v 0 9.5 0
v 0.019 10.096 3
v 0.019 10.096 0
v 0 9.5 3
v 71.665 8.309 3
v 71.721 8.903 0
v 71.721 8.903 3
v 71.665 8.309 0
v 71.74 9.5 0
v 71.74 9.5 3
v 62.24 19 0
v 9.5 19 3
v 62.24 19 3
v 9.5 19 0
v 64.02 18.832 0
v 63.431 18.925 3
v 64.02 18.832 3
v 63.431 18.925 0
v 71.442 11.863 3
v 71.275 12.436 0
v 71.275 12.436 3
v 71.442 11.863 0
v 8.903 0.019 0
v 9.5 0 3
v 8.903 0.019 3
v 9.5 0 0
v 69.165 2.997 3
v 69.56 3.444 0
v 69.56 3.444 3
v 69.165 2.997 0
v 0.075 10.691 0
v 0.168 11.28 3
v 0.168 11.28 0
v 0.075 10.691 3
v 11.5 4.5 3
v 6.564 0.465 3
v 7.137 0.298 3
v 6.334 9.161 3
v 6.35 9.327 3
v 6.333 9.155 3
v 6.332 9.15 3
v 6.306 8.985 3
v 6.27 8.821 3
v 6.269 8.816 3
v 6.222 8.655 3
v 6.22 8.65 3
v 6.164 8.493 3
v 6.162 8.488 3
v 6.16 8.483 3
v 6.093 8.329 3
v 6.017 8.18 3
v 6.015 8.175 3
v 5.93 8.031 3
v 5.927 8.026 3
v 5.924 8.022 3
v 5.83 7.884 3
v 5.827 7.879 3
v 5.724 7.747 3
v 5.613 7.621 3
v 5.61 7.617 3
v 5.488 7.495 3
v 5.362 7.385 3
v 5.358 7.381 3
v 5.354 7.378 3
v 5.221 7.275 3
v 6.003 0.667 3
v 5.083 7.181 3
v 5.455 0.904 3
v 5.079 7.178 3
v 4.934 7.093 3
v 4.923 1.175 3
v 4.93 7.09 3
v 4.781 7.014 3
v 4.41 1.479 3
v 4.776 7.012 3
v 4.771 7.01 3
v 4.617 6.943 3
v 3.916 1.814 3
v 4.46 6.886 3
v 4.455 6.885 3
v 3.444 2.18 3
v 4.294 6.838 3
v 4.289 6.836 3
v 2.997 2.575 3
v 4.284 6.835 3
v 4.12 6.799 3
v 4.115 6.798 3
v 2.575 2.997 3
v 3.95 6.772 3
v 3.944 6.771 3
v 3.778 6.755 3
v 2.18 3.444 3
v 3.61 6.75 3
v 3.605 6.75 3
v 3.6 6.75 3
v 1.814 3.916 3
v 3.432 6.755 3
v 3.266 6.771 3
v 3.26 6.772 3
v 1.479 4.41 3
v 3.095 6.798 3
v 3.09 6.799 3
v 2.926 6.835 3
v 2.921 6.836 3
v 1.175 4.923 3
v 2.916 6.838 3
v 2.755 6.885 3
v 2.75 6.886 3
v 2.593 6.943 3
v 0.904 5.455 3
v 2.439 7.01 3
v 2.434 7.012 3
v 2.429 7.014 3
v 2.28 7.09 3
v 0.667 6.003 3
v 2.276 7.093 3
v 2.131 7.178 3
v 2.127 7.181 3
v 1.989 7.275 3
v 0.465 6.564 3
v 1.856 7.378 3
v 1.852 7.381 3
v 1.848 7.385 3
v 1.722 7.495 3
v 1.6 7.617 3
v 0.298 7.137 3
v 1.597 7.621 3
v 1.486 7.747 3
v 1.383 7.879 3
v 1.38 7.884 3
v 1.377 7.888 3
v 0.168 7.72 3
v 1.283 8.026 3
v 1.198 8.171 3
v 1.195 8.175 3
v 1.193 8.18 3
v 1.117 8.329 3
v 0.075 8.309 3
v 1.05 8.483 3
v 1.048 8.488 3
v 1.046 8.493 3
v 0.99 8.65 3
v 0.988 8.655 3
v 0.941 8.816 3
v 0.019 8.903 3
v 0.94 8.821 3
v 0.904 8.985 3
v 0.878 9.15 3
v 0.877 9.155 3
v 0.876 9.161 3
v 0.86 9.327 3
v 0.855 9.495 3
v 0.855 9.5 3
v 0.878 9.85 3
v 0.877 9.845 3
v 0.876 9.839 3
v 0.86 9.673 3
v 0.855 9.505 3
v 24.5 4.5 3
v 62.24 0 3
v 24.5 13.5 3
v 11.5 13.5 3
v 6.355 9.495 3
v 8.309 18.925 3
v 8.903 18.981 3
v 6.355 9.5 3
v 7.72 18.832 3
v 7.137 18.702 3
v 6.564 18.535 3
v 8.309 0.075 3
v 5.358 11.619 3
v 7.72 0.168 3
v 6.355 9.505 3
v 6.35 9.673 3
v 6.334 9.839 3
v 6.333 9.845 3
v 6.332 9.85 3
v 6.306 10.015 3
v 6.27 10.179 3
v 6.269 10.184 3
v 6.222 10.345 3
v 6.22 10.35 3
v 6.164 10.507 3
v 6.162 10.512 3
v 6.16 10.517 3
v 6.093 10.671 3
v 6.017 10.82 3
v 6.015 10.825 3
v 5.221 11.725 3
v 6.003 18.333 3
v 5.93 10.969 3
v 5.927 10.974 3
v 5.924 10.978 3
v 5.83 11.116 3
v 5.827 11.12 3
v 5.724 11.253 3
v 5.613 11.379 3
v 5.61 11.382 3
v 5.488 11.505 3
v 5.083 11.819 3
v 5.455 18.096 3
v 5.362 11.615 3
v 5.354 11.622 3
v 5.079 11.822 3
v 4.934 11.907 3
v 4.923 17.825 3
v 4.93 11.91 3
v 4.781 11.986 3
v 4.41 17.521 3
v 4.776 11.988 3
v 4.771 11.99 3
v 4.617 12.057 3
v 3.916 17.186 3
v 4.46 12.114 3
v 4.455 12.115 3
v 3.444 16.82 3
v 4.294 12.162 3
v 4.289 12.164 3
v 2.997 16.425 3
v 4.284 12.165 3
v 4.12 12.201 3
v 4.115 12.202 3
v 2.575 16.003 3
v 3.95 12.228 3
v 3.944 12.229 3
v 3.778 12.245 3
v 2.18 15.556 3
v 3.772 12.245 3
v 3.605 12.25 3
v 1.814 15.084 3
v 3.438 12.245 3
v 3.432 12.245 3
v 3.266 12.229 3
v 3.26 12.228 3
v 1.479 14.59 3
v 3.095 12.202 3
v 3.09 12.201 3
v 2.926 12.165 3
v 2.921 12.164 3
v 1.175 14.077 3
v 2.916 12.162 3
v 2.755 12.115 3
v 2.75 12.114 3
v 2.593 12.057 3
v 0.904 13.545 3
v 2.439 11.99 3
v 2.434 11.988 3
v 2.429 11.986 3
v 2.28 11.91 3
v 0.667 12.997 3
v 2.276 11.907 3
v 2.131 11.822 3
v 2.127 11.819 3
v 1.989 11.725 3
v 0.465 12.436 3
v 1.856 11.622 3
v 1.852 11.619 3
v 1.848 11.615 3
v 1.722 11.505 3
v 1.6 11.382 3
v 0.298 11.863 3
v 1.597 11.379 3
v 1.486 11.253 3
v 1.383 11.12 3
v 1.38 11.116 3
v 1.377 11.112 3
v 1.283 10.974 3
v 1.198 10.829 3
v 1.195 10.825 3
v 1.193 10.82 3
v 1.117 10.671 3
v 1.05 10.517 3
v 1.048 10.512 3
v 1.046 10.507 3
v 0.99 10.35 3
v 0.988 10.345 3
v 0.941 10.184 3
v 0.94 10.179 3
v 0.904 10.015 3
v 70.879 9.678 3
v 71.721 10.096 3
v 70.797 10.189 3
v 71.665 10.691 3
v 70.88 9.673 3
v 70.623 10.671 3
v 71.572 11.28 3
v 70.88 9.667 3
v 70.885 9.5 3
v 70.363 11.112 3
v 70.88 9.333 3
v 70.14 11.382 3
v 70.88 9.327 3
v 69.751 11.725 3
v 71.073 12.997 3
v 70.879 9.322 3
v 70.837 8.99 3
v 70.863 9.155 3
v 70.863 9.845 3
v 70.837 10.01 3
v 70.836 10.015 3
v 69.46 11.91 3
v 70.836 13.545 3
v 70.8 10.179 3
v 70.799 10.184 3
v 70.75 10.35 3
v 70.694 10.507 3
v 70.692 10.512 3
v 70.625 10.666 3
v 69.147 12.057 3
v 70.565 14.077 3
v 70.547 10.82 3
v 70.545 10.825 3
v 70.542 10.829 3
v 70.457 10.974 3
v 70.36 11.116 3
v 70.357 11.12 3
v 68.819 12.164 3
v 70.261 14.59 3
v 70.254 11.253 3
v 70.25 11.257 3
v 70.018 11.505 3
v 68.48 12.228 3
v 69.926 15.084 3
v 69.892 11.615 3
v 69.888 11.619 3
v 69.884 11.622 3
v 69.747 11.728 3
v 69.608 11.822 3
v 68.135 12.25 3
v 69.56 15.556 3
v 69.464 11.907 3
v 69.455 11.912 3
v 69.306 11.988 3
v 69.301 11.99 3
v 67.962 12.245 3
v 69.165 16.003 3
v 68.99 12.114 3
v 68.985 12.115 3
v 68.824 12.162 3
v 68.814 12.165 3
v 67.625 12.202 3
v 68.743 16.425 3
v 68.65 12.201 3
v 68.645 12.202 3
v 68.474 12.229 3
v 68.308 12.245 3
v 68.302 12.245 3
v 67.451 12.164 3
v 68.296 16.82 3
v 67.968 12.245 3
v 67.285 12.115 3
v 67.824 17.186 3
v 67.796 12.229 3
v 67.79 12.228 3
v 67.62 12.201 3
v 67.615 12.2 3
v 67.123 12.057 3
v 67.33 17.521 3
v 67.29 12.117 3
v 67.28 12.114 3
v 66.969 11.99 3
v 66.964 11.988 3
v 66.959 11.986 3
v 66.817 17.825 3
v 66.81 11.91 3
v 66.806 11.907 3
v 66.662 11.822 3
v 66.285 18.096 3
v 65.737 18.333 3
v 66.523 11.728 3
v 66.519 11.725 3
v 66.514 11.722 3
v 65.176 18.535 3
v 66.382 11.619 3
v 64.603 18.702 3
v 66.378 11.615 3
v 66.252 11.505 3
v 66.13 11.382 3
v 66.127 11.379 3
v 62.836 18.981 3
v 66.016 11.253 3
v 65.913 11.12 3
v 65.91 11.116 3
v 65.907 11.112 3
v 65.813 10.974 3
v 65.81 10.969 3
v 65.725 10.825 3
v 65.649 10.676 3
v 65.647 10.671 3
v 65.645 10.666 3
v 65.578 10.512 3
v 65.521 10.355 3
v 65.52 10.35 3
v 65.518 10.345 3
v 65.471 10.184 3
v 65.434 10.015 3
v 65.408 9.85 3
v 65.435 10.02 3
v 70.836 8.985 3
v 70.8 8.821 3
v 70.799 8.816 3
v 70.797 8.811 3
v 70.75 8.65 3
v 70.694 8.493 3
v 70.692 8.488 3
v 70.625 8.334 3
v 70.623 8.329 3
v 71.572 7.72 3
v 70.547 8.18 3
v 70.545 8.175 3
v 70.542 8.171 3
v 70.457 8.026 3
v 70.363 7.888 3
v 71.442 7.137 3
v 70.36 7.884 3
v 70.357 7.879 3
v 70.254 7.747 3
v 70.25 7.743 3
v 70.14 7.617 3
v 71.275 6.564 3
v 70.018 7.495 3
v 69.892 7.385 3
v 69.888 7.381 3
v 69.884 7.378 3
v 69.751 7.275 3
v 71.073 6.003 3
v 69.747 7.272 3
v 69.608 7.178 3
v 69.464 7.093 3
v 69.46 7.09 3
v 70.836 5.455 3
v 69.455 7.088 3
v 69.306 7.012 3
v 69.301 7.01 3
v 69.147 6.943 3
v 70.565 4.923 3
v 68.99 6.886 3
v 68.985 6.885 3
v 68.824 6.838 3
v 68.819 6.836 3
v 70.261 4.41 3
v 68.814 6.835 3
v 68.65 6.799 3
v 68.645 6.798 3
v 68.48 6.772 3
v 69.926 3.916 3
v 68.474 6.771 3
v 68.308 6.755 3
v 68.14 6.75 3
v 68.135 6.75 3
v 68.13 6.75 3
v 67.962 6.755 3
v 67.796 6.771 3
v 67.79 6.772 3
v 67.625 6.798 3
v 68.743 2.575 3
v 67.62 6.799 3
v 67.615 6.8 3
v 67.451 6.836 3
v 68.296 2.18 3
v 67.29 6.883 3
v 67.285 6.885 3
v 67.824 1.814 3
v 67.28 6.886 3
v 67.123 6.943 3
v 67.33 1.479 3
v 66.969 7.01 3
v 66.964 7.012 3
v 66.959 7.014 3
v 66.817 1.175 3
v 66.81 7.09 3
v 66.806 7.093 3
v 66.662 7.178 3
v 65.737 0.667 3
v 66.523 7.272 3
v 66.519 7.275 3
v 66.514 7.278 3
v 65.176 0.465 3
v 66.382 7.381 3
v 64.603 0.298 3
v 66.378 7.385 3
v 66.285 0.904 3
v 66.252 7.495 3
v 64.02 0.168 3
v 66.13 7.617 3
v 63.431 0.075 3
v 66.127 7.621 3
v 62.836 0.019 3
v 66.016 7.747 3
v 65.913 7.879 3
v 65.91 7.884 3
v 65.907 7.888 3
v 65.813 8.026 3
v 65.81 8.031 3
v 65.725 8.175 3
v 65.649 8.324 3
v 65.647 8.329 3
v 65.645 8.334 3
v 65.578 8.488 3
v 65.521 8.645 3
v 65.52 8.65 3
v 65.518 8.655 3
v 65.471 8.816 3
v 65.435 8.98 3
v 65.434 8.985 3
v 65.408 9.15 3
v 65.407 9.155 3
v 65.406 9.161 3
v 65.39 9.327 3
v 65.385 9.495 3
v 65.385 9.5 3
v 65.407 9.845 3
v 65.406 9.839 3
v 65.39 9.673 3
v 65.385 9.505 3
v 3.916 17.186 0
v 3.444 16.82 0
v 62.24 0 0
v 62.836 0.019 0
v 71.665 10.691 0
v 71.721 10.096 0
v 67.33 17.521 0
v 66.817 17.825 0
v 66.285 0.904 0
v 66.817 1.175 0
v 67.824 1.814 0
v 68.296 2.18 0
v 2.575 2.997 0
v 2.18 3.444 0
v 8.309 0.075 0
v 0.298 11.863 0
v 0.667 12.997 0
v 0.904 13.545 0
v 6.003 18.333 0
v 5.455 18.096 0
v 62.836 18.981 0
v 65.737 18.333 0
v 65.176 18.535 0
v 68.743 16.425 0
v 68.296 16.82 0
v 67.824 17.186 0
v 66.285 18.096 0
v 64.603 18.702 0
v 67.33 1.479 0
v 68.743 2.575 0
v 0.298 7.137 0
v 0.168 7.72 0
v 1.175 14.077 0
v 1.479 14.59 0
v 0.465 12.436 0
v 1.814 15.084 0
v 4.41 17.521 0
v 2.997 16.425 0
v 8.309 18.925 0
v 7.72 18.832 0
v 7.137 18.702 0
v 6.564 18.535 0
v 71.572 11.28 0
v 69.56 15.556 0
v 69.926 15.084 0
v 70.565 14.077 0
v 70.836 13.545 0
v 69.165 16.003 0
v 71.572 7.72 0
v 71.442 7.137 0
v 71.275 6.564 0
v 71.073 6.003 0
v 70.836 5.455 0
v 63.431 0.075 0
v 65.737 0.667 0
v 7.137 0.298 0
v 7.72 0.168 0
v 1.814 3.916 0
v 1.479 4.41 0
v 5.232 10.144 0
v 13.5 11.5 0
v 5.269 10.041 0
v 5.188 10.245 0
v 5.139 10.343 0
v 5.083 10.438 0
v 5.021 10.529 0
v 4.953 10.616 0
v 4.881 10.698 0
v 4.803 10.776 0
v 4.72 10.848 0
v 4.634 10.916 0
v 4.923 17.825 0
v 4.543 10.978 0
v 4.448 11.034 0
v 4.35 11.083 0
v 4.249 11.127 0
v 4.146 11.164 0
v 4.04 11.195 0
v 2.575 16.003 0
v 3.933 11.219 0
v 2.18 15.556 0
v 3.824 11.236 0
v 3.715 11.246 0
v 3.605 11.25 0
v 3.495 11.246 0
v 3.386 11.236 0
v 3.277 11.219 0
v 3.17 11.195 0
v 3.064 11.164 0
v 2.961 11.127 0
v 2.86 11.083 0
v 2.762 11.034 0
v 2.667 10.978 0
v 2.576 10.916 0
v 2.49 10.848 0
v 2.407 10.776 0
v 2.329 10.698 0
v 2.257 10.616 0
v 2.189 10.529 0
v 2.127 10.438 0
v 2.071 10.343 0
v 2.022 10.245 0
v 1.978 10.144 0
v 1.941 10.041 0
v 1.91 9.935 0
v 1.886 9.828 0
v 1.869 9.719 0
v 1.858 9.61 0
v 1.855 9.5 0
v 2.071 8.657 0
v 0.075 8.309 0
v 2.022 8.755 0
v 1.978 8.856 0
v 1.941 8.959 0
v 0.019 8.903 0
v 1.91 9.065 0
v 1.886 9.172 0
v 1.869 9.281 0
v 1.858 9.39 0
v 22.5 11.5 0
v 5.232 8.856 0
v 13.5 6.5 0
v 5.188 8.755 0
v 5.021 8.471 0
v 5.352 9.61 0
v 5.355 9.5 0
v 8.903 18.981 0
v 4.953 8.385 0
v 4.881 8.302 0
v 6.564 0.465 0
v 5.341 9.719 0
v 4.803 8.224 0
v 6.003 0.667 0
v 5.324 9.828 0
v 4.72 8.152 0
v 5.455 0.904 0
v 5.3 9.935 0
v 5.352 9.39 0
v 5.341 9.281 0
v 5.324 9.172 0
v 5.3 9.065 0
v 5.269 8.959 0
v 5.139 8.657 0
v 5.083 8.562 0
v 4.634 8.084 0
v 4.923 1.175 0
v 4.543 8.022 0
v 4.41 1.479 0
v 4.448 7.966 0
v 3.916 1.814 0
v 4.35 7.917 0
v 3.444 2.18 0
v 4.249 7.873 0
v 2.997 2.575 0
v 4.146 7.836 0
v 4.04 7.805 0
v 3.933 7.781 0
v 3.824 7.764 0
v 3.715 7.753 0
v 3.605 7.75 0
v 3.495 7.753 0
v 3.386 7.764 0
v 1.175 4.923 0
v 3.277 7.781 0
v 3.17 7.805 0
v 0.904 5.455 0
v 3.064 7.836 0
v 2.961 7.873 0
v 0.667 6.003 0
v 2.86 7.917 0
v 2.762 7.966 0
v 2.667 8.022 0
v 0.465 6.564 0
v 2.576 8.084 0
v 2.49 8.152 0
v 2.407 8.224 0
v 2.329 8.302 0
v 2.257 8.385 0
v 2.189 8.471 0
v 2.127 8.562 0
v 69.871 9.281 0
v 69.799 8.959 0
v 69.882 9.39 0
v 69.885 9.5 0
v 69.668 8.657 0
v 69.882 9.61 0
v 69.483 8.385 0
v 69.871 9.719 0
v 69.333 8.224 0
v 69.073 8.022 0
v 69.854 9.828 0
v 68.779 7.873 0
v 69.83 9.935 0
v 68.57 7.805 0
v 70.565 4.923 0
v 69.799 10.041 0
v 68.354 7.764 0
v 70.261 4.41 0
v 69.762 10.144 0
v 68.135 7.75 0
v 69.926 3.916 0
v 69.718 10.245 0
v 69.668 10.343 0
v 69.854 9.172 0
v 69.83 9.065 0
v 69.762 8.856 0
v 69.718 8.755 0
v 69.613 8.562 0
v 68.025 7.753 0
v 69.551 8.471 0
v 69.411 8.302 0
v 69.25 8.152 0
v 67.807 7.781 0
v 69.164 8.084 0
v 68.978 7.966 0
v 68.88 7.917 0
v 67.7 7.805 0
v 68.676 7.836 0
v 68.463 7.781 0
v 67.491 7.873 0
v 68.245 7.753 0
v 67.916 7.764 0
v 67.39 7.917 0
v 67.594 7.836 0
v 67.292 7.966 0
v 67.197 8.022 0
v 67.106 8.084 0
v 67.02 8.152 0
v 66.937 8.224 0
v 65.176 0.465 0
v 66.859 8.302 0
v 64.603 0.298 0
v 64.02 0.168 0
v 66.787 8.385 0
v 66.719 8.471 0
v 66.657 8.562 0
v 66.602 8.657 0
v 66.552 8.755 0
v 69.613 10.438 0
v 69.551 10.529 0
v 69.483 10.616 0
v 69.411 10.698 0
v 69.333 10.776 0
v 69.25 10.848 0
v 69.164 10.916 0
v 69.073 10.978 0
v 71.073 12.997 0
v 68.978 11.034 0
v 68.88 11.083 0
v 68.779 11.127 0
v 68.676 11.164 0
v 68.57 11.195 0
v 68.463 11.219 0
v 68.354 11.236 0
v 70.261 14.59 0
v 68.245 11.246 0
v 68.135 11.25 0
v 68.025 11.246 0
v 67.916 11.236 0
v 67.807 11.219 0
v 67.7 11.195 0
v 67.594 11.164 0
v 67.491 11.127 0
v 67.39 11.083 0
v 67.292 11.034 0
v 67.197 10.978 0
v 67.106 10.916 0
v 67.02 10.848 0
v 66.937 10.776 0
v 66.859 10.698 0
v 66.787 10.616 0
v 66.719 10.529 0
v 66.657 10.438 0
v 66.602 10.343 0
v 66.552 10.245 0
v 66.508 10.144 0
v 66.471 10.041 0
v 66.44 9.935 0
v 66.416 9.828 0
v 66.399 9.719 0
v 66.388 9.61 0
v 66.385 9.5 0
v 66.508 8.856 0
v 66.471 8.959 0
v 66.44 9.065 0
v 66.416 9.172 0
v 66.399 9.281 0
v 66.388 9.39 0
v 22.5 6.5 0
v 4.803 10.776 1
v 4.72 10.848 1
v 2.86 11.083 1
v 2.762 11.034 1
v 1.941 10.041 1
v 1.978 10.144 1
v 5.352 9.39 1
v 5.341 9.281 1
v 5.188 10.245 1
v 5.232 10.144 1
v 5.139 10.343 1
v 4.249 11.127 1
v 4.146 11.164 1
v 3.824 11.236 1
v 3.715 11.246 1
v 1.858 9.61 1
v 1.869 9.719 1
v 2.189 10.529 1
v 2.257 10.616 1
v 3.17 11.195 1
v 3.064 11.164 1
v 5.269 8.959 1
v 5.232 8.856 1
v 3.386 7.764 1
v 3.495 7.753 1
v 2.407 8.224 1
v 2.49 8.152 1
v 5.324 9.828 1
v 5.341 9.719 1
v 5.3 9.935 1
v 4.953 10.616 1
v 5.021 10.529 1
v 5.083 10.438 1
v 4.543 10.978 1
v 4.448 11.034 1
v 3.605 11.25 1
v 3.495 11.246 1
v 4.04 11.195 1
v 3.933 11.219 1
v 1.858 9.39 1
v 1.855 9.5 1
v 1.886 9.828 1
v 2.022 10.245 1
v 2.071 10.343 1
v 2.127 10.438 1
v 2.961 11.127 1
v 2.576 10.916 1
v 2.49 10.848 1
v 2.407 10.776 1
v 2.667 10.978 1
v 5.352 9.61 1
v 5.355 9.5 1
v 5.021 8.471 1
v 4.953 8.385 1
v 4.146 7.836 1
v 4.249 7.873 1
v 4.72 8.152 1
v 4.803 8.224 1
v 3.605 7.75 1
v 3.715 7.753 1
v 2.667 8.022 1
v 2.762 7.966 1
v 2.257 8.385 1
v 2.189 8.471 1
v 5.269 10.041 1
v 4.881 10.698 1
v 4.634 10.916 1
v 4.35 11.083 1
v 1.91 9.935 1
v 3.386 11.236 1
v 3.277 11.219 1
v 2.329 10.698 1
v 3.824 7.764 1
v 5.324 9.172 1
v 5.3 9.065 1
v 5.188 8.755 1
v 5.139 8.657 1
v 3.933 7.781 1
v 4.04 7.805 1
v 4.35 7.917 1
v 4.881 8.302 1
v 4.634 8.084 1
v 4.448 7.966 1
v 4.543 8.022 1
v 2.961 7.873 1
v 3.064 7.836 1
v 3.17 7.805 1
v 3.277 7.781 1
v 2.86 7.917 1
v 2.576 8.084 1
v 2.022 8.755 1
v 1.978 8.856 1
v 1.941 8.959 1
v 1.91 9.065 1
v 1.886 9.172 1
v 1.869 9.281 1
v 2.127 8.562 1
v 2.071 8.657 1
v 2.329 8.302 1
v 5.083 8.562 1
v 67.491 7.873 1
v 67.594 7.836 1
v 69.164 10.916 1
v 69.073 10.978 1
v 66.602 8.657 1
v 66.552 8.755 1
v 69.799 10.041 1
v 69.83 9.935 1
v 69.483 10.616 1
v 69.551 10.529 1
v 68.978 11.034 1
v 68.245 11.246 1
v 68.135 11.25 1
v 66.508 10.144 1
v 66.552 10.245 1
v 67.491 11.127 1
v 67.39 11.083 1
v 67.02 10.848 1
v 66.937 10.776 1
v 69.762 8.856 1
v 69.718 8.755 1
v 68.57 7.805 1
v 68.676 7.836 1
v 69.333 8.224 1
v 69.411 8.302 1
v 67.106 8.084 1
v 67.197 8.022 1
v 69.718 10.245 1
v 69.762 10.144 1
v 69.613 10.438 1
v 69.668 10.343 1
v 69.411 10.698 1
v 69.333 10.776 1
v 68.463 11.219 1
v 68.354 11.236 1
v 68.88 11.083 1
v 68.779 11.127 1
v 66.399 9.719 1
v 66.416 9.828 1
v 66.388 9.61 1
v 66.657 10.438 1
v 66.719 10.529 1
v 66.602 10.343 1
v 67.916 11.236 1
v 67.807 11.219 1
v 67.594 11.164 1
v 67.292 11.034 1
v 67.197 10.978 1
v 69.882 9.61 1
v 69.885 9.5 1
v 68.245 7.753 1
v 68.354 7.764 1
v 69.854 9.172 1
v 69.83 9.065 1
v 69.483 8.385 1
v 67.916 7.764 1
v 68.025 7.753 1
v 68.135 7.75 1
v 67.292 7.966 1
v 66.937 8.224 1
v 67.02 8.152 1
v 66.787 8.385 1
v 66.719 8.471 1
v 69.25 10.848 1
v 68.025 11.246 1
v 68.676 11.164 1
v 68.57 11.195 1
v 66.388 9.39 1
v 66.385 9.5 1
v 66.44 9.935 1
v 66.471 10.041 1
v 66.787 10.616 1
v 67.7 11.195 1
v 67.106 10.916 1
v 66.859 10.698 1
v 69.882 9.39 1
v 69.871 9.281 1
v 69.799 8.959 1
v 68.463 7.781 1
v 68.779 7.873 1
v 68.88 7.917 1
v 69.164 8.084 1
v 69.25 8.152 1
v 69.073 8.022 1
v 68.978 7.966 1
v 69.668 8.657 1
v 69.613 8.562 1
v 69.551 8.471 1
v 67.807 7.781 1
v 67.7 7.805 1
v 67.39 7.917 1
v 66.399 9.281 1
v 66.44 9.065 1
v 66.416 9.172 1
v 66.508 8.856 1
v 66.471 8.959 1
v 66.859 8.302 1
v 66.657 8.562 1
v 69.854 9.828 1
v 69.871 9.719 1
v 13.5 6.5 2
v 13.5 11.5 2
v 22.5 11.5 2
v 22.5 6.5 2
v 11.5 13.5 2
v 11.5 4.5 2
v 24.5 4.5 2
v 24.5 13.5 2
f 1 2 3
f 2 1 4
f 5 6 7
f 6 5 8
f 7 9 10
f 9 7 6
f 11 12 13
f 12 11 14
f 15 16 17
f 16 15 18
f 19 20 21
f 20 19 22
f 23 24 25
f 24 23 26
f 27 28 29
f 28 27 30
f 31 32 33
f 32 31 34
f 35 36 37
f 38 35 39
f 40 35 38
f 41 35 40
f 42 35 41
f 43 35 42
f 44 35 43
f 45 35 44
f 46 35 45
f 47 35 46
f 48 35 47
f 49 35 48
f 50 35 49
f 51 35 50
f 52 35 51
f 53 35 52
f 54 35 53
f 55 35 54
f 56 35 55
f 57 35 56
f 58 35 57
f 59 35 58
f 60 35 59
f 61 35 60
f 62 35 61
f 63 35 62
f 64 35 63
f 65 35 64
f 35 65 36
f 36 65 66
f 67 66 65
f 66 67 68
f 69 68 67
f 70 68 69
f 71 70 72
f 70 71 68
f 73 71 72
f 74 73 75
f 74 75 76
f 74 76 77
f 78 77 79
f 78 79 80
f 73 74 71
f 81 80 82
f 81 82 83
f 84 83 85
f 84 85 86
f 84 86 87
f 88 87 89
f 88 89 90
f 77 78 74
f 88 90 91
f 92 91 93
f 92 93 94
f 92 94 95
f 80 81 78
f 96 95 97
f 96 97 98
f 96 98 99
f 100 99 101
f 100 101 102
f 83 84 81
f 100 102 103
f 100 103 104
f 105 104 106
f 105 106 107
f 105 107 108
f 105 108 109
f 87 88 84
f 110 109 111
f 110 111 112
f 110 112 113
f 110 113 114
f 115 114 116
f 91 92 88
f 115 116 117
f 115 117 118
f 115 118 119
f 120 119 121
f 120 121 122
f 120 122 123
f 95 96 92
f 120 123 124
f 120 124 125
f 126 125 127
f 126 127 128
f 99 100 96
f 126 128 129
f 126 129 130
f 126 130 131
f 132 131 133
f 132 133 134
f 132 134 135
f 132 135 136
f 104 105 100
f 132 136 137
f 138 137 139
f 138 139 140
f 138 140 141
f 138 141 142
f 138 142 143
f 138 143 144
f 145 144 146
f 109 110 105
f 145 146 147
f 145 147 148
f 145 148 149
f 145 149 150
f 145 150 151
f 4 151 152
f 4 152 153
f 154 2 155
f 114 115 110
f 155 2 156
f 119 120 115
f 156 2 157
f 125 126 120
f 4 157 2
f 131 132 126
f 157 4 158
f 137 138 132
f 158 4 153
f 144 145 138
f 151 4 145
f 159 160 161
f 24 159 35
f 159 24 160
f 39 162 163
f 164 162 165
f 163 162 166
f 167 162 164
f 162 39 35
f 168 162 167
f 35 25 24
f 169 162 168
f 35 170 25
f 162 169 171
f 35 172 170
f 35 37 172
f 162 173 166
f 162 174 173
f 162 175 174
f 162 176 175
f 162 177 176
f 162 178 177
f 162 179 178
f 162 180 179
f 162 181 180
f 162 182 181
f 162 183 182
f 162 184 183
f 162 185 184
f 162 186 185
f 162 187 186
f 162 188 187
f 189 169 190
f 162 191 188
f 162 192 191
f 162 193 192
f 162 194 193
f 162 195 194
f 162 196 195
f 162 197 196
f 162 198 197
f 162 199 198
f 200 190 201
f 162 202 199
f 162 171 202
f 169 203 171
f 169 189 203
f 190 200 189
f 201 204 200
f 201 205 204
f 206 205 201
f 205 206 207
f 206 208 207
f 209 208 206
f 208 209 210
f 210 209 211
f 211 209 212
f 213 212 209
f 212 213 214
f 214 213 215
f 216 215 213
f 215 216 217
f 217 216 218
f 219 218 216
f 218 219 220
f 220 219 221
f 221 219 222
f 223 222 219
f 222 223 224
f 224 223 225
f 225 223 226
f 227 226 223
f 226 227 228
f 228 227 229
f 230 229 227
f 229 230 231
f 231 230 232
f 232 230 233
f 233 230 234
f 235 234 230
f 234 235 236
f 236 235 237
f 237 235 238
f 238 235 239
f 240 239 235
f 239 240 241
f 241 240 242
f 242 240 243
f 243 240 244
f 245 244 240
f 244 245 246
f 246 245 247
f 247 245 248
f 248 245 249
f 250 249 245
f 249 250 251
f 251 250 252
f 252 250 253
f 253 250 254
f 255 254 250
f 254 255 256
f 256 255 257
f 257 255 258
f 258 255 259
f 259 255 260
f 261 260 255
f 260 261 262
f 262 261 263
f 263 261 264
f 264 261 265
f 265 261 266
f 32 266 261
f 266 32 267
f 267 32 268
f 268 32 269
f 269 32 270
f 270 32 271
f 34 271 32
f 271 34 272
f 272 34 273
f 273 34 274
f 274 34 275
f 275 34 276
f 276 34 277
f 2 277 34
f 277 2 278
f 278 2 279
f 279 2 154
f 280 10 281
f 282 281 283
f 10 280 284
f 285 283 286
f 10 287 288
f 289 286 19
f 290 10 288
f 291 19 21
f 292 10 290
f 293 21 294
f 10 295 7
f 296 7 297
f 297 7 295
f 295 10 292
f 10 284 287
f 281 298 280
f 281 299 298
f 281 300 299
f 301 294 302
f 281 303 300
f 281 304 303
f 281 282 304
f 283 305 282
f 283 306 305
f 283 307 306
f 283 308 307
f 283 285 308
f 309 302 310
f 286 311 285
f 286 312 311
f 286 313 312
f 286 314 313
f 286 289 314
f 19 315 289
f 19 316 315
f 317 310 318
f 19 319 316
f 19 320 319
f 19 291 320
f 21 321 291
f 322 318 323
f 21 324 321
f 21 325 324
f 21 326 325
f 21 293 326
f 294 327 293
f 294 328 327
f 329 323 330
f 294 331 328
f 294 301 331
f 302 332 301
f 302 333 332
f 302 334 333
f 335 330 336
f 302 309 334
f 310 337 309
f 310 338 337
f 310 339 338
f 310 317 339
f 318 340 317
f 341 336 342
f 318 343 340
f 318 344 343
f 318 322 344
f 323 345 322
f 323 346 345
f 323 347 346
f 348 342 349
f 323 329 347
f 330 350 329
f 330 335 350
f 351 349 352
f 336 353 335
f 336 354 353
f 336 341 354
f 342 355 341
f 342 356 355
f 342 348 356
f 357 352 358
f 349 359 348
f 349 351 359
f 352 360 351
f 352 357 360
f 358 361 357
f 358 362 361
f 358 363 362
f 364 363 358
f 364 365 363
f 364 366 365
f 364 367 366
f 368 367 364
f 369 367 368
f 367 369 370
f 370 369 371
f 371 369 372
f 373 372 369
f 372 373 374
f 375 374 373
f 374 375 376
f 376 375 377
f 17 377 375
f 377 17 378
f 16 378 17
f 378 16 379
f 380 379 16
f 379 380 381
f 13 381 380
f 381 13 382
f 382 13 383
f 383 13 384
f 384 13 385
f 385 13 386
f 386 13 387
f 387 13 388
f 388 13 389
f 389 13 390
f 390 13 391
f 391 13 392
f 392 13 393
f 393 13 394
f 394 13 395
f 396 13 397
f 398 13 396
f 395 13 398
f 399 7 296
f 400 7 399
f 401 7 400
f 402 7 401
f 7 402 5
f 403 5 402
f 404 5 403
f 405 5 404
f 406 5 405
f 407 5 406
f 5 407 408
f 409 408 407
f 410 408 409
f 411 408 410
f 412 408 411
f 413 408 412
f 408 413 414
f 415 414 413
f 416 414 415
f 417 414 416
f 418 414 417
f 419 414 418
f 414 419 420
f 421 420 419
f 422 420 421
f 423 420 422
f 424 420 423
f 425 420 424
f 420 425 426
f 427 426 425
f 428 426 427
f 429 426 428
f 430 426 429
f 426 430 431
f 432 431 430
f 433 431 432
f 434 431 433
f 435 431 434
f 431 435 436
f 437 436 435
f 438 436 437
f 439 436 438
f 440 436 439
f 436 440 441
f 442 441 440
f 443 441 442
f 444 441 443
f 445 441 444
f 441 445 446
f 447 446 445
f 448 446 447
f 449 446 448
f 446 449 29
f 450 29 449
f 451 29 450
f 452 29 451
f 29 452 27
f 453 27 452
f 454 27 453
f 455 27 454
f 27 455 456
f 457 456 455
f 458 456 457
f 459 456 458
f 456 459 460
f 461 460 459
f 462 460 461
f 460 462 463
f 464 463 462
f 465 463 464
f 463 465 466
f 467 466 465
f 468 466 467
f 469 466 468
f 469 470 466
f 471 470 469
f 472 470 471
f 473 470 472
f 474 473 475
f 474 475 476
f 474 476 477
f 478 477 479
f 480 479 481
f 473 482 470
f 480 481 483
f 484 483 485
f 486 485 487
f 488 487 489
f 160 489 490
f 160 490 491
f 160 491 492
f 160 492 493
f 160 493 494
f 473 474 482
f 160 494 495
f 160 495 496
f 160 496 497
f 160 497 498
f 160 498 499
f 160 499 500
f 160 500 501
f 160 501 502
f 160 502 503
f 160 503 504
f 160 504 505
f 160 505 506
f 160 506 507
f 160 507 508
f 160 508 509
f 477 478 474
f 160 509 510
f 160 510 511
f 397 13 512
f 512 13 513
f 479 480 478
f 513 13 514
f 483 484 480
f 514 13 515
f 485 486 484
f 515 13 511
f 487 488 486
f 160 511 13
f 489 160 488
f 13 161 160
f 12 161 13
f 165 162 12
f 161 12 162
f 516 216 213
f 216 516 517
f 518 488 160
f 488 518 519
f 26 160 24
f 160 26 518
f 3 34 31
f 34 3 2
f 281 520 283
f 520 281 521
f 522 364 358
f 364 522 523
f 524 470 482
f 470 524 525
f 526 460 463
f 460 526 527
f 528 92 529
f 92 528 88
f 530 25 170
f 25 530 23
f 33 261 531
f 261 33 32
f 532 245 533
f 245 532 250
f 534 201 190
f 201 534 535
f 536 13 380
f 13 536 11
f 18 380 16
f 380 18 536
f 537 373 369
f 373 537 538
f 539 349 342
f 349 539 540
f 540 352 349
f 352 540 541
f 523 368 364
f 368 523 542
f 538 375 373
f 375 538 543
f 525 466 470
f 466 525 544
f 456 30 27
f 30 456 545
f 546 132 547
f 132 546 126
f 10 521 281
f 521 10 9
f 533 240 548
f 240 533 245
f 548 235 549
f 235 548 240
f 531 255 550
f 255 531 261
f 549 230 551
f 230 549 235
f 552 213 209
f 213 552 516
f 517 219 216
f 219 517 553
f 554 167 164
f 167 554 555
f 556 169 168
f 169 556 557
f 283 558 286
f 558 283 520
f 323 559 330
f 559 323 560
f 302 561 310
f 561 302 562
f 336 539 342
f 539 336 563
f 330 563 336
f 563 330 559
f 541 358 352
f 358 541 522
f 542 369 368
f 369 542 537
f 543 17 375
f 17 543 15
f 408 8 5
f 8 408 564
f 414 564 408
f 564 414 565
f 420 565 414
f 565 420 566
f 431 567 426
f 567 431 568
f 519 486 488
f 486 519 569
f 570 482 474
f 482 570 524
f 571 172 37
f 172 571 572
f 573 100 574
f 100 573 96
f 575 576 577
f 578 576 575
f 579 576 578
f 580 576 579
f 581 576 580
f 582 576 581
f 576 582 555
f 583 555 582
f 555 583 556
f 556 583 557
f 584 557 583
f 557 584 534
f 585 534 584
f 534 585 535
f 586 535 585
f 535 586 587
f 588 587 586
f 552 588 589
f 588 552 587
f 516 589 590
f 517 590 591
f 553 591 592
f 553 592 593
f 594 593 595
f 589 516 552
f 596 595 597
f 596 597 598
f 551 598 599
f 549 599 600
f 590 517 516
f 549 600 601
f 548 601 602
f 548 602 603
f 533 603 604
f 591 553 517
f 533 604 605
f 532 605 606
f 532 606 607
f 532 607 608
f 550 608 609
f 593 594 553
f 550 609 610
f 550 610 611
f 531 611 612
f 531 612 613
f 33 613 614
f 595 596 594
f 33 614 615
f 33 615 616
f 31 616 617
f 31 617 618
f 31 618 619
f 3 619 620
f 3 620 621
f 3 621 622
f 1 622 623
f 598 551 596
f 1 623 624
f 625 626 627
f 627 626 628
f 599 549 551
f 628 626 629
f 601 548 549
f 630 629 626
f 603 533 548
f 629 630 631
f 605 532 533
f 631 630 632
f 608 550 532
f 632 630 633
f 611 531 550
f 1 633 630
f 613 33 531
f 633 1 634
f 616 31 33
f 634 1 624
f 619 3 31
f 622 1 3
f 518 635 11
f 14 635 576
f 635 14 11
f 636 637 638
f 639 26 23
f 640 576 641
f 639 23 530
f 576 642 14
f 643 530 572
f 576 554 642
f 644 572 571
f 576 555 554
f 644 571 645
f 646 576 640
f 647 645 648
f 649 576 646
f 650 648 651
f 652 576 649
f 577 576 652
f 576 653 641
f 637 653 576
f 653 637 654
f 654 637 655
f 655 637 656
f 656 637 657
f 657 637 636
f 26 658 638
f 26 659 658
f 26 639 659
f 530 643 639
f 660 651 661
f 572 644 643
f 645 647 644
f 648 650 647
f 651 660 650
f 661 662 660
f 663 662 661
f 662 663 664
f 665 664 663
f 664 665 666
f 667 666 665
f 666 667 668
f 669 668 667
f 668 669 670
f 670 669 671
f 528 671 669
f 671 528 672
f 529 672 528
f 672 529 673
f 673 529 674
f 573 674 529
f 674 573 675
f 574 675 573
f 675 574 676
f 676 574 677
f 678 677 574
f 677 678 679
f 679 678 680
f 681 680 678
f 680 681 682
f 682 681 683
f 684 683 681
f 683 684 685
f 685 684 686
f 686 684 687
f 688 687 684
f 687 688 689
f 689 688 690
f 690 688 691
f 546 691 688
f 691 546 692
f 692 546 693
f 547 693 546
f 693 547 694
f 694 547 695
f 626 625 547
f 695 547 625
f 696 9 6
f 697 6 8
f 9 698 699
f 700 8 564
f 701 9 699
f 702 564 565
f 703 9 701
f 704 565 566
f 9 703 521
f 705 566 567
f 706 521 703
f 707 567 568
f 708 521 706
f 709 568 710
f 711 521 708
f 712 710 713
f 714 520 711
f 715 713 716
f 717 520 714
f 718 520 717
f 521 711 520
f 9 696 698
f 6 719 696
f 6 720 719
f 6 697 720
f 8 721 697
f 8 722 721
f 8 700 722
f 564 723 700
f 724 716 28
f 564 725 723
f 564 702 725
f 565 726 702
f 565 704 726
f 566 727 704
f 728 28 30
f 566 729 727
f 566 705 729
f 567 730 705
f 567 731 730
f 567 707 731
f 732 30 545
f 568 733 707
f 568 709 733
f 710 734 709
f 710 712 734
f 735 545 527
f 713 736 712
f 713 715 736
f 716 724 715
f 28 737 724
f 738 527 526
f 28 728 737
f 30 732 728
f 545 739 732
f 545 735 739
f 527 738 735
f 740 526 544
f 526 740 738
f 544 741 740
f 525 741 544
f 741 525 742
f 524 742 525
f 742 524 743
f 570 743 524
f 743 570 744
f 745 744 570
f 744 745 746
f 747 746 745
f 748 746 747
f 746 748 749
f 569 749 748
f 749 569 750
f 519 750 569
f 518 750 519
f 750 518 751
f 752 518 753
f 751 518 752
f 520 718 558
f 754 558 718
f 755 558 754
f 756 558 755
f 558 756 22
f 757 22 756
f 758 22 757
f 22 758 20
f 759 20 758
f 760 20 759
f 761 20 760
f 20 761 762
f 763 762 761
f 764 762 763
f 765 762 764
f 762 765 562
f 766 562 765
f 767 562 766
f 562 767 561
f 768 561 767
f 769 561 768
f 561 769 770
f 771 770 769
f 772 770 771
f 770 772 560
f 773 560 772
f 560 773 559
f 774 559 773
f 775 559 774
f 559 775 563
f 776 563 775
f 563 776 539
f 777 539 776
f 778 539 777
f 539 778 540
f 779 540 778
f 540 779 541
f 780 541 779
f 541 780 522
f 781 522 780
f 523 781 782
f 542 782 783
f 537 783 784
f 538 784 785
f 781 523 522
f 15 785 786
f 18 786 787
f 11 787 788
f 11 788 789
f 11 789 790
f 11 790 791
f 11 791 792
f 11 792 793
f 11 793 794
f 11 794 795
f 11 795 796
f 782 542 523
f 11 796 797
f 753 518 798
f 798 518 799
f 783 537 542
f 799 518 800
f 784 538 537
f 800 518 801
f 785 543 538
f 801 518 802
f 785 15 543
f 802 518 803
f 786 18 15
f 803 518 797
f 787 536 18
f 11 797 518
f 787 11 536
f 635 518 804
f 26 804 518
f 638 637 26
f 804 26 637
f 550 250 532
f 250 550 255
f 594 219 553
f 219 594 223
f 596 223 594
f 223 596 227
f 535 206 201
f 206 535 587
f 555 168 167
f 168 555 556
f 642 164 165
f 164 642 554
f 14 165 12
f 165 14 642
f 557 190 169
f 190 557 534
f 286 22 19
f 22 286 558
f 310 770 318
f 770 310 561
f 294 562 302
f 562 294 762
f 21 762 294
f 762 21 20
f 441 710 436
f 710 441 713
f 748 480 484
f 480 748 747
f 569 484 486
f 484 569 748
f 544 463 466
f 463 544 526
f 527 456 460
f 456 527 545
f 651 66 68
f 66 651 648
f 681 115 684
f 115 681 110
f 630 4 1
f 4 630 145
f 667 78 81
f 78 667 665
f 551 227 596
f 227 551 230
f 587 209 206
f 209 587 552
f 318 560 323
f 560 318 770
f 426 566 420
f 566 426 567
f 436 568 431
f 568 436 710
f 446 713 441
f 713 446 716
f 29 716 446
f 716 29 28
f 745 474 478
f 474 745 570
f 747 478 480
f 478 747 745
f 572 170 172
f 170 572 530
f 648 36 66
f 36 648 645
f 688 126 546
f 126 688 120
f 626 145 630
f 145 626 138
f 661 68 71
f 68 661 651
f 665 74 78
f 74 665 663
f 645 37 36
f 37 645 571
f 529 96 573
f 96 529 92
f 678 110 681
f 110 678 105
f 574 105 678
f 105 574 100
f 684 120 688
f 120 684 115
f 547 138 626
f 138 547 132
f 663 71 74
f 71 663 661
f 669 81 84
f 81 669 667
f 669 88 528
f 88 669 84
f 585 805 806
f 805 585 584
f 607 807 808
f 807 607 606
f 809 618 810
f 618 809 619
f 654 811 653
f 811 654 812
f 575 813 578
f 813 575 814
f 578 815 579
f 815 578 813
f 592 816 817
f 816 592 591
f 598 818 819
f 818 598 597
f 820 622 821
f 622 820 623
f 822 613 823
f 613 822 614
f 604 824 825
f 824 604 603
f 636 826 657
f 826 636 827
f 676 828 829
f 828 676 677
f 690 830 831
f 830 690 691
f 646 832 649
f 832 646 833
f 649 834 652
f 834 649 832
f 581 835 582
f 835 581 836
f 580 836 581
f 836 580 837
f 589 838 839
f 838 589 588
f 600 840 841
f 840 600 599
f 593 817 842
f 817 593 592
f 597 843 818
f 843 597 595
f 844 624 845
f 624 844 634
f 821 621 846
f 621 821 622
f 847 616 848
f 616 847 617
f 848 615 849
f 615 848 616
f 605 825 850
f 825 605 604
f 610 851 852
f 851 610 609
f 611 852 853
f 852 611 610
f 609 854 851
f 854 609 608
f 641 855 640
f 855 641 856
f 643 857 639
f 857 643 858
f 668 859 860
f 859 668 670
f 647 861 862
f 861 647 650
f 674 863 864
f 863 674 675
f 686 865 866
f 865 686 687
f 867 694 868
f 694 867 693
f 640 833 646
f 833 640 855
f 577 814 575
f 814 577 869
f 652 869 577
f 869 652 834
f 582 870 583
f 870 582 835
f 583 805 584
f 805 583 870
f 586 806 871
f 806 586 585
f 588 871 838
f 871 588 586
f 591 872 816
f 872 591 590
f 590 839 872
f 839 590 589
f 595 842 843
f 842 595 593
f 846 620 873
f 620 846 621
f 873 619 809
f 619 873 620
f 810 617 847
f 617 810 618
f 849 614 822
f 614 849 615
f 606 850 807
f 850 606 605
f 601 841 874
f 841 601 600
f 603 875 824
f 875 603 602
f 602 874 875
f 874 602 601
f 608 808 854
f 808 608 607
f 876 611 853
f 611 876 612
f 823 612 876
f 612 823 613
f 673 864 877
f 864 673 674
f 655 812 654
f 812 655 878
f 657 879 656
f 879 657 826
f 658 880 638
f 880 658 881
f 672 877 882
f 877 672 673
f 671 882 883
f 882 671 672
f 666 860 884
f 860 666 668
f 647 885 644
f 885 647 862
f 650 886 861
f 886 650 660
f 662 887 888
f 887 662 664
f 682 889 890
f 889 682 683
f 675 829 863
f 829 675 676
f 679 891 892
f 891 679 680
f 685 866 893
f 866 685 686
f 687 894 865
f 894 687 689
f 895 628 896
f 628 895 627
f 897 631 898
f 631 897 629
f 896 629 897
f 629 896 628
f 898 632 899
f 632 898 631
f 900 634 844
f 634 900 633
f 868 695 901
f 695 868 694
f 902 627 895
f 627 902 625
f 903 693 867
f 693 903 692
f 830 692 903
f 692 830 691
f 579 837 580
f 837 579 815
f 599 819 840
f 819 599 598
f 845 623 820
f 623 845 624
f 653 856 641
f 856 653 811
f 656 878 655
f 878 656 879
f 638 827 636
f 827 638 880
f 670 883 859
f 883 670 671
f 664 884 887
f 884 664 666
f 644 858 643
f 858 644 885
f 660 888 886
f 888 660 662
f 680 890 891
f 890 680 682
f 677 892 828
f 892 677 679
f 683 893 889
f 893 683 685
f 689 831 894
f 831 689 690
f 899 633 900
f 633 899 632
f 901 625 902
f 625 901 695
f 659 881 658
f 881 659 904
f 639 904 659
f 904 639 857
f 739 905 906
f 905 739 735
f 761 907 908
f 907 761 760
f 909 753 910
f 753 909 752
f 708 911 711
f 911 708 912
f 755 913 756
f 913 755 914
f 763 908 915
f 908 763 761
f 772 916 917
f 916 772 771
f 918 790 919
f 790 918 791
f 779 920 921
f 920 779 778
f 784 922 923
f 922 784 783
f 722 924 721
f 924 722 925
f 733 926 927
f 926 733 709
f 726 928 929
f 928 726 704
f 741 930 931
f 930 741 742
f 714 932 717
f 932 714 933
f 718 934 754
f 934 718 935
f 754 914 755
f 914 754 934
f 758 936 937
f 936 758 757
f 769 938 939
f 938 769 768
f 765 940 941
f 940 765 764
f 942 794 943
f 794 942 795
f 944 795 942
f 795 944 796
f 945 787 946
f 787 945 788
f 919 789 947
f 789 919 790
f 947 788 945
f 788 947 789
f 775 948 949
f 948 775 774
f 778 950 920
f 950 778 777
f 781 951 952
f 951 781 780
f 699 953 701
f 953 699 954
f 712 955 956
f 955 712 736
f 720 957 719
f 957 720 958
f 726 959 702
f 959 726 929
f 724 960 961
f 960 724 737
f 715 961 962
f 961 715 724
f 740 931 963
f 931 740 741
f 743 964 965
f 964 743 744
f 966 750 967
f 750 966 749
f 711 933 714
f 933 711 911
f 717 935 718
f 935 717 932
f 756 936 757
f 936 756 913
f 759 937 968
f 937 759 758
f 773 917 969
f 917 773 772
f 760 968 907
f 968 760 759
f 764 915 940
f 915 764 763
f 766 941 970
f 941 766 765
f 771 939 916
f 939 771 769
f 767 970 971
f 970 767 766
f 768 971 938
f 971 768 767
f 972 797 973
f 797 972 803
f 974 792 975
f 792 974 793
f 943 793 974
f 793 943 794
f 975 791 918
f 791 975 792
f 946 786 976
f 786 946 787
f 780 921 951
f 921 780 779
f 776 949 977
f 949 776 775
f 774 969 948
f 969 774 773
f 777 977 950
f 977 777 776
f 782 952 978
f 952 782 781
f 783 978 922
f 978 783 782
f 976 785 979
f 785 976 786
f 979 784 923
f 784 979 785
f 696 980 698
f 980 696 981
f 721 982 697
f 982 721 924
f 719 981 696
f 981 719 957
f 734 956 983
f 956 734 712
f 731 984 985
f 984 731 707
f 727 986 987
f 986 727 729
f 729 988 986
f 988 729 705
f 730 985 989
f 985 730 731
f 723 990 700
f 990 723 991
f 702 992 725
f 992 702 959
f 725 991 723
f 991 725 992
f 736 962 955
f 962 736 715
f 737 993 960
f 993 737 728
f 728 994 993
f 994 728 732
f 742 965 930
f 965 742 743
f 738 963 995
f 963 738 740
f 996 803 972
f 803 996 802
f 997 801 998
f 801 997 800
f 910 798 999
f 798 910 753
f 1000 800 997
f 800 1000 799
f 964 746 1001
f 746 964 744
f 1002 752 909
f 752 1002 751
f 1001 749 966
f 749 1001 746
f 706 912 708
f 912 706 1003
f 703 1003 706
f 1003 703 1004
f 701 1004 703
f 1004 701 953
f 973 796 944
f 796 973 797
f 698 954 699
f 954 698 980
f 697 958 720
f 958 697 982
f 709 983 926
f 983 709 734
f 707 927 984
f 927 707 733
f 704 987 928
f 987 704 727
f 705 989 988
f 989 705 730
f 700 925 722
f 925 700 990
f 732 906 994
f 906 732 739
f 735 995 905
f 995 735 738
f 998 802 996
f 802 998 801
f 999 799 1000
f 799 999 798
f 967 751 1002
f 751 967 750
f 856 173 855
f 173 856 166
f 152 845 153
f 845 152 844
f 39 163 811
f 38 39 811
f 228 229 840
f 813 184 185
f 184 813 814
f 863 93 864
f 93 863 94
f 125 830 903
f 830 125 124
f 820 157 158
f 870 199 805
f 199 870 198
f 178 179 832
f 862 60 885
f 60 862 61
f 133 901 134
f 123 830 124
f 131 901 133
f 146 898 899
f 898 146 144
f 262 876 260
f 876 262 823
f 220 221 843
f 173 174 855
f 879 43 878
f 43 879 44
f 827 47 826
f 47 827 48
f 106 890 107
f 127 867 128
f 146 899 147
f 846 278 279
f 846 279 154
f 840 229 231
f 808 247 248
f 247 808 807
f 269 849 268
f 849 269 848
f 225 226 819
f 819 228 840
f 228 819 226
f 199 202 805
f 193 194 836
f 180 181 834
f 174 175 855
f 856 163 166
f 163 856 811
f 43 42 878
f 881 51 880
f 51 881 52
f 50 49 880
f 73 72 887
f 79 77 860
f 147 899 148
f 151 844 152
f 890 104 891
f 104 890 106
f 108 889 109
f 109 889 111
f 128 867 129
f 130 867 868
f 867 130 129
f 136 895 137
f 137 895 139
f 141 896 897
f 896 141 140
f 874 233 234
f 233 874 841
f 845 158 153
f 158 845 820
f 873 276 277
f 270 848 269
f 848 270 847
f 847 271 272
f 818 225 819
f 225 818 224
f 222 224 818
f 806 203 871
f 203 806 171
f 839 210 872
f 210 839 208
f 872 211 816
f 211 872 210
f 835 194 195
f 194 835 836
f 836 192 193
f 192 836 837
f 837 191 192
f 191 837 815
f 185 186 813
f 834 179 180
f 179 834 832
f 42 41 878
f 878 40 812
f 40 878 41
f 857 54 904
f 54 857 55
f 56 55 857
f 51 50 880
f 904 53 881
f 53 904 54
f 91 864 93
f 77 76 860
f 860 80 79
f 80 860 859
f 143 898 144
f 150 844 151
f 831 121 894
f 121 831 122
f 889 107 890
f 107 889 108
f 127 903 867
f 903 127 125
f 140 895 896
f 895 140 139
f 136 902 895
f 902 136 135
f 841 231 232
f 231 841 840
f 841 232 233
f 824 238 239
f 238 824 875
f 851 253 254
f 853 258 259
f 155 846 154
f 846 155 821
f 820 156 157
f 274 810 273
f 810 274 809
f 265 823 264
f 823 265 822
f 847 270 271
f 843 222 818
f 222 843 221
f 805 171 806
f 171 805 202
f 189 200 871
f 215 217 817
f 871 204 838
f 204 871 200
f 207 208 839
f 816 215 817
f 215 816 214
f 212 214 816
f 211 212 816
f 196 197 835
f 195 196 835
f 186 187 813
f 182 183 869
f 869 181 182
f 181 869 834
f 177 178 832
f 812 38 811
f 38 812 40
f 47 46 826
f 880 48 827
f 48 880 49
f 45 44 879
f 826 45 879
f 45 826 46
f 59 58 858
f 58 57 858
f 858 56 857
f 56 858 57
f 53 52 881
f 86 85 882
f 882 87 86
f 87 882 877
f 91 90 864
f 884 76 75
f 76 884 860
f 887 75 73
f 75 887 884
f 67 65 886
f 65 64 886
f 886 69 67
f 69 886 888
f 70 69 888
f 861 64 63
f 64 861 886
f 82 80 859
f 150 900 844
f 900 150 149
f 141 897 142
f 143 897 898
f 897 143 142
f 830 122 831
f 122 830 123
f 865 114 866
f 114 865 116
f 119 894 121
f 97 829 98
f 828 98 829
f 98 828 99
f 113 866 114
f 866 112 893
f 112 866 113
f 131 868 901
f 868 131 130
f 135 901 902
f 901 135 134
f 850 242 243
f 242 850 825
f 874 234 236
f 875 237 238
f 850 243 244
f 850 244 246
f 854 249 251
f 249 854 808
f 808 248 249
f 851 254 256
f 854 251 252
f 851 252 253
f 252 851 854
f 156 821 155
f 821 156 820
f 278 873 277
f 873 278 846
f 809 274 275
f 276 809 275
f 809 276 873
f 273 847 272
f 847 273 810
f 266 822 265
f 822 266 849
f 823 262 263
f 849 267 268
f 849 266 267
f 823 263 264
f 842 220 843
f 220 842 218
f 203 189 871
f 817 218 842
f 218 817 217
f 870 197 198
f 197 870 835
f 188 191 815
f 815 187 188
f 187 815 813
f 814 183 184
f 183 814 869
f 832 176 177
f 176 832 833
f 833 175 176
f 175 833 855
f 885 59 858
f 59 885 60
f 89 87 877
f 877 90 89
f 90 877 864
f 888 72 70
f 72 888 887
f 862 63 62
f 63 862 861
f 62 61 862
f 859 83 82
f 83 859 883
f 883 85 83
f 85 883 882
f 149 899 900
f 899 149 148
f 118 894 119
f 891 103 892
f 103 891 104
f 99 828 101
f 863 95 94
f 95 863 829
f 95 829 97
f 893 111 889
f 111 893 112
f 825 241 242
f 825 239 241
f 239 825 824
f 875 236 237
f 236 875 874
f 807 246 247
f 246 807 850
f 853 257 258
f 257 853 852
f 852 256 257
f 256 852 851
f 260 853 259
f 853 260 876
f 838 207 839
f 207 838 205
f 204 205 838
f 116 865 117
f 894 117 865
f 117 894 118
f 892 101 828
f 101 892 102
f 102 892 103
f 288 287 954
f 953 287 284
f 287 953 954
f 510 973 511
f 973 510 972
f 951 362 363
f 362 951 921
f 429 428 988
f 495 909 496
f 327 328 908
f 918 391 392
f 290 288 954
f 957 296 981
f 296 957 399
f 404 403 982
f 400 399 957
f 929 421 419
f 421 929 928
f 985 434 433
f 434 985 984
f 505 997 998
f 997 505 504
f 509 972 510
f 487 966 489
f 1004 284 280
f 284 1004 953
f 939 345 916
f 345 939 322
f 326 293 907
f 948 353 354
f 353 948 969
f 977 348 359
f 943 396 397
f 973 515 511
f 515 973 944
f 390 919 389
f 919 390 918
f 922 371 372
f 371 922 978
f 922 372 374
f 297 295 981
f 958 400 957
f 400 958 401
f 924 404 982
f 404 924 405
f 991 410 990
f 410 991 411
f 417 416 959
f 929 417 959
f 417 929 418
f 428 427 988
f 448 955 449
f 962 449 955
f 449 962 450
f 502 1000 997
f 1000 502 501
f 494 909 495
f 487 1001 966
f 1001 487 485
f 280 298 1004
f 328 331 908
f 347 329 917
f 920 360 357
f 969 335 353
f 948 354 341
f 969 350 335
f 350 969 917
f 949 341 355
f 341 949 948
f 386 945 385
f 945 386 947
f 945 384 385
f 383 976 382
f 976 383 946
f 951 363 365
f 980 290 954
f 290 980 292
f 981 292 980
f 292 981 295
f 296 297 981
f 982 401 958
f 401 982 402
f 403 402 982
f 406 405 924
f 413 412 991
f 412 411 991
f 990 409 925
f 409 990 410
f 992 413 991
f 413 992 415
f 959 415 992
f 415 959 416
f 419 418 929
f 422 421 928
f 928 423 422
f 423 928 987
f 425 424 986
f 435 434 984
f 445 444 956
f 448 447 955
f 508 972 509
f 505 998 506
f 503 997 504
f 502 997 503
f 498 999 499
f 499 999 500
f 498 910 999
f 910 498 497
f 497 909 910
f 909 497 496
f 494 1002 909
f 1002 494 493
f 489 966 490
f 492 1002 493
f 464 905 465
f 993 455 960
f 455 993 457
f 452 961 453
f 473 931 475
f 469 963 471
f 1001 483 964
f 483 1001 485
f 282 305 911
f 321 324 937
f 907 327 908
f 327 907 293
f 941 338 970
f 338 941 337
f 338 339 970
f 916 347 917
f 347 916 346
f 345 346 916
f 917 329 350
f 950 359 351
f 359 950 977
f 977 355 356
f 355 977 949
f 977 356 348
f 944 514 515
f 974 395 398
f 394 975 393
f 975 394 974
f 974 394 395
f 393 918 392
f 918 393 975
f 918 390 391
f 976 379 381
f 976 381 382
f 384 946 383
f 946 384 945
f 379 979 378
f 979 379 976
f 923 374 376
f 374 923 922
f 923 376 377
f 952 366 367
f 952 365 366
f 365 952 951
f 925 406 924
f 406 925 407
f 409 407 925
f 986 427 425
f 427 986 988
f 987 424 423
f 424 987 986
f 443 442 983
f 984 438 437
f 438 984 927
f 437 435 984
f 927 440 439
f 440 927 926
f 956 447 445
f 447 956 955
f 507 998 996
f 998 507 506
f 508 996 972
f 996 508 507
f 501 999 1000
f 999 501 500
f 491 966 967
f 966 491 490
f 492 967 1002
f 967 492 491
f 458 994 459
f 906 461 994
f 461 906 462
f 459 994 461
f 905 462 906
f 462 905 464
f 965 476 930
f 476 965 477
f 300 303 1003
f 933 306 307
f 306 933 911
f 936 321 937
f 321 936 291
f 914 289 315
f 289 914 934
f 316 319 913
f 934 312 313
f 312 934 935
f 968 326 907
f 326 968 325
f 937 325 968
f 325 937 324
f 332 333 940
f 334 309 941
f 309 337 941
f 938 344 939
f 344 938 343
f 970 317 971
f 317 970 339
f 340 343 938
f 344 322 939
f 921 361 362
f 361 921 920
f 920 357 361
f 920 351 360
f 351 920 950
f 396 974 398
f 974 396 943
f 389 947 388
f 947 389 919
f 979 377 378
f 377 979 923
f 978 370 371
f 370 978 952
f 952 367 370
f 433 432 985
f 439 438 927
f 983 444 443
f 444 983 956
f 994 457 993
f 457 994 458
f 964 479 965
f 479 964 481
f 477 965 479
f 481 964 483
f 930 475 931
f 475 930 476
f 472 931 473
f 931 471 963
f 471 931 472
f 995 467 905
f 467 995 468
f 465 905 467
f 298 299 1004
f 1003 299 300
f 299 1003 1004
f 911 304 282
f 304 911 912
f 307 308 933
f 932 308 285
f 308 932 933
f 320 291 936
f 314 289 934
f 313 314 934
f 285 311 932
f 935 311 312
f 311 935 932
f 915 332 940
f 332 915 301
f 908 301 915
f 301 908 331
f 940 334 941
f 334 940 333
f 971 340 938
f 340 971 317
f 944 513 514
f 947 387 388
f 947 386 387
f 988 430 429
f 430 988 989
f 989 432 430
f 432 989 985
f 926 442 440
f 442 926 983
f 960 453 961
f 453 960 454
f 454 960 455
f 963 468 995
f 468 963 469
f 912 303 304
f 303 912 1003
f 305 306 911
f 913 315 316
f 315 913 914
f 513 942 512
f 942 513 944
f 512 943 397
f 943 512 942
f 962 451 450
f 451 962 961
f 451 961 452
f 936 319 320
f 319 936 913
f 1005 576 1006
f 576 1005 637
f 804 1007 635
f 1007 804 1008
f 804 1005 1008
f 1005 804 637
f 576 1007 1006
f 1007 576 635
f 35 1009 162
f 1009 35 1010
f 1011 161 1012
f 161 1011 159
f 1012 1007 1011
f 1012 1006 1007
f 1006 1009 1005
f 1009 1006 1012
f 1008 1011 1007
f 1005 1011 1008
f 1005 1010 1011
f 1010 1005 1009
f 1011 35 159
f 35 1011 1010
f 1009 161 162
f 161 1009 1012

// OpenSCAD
$fn = 100;

// Edge radius of the hammond 1455B802 case
$r = 9.5;

// Width
$w = 71.74;

// Thickness
$t = 3;

// Distance of screw holes
$d = 64.53;
// Screw radius
$sr = 3.5 / 2;

// Height of PCB top
$ph = 6.5;
// K connector dimension (w x h
$cw = 9;
$ch = 5;

difference()
{
    union()
    {
        // Whole front element
        hull()
        {
            translate([$r, $r, 0]) cylinder($t, $r, $r);
            translate([$w - $r, $r, 0]) cylinder($t, $r, $r);
        }
    }
    // Screw holes
    translate([($w / 2) - ($d / 2), $r, -1]) cylinder($t + 2, $sr, $sr);
    translate([($w / 2) + ($d / 2), $r, -1]) cylinder($t + 2, $sr, $sr);
    translate([($w / 2) - ($d / 2), $r, $t - 2]) cylinder(2.1, $sr, 2.8);
    translate([($w / 2) + ($d / 2), $r, $t - 2]) cylinder(2.1, $sr, 2.8);

    // Connector cutouts
    translate([13.5, $ph, -1]) cube([$cw, $ch, $t + 2], false);
    translate([13.5 - 2, $ph - 2, 2]) cube([$cw + 4, $ch + 4, $t + 2], false);
}
